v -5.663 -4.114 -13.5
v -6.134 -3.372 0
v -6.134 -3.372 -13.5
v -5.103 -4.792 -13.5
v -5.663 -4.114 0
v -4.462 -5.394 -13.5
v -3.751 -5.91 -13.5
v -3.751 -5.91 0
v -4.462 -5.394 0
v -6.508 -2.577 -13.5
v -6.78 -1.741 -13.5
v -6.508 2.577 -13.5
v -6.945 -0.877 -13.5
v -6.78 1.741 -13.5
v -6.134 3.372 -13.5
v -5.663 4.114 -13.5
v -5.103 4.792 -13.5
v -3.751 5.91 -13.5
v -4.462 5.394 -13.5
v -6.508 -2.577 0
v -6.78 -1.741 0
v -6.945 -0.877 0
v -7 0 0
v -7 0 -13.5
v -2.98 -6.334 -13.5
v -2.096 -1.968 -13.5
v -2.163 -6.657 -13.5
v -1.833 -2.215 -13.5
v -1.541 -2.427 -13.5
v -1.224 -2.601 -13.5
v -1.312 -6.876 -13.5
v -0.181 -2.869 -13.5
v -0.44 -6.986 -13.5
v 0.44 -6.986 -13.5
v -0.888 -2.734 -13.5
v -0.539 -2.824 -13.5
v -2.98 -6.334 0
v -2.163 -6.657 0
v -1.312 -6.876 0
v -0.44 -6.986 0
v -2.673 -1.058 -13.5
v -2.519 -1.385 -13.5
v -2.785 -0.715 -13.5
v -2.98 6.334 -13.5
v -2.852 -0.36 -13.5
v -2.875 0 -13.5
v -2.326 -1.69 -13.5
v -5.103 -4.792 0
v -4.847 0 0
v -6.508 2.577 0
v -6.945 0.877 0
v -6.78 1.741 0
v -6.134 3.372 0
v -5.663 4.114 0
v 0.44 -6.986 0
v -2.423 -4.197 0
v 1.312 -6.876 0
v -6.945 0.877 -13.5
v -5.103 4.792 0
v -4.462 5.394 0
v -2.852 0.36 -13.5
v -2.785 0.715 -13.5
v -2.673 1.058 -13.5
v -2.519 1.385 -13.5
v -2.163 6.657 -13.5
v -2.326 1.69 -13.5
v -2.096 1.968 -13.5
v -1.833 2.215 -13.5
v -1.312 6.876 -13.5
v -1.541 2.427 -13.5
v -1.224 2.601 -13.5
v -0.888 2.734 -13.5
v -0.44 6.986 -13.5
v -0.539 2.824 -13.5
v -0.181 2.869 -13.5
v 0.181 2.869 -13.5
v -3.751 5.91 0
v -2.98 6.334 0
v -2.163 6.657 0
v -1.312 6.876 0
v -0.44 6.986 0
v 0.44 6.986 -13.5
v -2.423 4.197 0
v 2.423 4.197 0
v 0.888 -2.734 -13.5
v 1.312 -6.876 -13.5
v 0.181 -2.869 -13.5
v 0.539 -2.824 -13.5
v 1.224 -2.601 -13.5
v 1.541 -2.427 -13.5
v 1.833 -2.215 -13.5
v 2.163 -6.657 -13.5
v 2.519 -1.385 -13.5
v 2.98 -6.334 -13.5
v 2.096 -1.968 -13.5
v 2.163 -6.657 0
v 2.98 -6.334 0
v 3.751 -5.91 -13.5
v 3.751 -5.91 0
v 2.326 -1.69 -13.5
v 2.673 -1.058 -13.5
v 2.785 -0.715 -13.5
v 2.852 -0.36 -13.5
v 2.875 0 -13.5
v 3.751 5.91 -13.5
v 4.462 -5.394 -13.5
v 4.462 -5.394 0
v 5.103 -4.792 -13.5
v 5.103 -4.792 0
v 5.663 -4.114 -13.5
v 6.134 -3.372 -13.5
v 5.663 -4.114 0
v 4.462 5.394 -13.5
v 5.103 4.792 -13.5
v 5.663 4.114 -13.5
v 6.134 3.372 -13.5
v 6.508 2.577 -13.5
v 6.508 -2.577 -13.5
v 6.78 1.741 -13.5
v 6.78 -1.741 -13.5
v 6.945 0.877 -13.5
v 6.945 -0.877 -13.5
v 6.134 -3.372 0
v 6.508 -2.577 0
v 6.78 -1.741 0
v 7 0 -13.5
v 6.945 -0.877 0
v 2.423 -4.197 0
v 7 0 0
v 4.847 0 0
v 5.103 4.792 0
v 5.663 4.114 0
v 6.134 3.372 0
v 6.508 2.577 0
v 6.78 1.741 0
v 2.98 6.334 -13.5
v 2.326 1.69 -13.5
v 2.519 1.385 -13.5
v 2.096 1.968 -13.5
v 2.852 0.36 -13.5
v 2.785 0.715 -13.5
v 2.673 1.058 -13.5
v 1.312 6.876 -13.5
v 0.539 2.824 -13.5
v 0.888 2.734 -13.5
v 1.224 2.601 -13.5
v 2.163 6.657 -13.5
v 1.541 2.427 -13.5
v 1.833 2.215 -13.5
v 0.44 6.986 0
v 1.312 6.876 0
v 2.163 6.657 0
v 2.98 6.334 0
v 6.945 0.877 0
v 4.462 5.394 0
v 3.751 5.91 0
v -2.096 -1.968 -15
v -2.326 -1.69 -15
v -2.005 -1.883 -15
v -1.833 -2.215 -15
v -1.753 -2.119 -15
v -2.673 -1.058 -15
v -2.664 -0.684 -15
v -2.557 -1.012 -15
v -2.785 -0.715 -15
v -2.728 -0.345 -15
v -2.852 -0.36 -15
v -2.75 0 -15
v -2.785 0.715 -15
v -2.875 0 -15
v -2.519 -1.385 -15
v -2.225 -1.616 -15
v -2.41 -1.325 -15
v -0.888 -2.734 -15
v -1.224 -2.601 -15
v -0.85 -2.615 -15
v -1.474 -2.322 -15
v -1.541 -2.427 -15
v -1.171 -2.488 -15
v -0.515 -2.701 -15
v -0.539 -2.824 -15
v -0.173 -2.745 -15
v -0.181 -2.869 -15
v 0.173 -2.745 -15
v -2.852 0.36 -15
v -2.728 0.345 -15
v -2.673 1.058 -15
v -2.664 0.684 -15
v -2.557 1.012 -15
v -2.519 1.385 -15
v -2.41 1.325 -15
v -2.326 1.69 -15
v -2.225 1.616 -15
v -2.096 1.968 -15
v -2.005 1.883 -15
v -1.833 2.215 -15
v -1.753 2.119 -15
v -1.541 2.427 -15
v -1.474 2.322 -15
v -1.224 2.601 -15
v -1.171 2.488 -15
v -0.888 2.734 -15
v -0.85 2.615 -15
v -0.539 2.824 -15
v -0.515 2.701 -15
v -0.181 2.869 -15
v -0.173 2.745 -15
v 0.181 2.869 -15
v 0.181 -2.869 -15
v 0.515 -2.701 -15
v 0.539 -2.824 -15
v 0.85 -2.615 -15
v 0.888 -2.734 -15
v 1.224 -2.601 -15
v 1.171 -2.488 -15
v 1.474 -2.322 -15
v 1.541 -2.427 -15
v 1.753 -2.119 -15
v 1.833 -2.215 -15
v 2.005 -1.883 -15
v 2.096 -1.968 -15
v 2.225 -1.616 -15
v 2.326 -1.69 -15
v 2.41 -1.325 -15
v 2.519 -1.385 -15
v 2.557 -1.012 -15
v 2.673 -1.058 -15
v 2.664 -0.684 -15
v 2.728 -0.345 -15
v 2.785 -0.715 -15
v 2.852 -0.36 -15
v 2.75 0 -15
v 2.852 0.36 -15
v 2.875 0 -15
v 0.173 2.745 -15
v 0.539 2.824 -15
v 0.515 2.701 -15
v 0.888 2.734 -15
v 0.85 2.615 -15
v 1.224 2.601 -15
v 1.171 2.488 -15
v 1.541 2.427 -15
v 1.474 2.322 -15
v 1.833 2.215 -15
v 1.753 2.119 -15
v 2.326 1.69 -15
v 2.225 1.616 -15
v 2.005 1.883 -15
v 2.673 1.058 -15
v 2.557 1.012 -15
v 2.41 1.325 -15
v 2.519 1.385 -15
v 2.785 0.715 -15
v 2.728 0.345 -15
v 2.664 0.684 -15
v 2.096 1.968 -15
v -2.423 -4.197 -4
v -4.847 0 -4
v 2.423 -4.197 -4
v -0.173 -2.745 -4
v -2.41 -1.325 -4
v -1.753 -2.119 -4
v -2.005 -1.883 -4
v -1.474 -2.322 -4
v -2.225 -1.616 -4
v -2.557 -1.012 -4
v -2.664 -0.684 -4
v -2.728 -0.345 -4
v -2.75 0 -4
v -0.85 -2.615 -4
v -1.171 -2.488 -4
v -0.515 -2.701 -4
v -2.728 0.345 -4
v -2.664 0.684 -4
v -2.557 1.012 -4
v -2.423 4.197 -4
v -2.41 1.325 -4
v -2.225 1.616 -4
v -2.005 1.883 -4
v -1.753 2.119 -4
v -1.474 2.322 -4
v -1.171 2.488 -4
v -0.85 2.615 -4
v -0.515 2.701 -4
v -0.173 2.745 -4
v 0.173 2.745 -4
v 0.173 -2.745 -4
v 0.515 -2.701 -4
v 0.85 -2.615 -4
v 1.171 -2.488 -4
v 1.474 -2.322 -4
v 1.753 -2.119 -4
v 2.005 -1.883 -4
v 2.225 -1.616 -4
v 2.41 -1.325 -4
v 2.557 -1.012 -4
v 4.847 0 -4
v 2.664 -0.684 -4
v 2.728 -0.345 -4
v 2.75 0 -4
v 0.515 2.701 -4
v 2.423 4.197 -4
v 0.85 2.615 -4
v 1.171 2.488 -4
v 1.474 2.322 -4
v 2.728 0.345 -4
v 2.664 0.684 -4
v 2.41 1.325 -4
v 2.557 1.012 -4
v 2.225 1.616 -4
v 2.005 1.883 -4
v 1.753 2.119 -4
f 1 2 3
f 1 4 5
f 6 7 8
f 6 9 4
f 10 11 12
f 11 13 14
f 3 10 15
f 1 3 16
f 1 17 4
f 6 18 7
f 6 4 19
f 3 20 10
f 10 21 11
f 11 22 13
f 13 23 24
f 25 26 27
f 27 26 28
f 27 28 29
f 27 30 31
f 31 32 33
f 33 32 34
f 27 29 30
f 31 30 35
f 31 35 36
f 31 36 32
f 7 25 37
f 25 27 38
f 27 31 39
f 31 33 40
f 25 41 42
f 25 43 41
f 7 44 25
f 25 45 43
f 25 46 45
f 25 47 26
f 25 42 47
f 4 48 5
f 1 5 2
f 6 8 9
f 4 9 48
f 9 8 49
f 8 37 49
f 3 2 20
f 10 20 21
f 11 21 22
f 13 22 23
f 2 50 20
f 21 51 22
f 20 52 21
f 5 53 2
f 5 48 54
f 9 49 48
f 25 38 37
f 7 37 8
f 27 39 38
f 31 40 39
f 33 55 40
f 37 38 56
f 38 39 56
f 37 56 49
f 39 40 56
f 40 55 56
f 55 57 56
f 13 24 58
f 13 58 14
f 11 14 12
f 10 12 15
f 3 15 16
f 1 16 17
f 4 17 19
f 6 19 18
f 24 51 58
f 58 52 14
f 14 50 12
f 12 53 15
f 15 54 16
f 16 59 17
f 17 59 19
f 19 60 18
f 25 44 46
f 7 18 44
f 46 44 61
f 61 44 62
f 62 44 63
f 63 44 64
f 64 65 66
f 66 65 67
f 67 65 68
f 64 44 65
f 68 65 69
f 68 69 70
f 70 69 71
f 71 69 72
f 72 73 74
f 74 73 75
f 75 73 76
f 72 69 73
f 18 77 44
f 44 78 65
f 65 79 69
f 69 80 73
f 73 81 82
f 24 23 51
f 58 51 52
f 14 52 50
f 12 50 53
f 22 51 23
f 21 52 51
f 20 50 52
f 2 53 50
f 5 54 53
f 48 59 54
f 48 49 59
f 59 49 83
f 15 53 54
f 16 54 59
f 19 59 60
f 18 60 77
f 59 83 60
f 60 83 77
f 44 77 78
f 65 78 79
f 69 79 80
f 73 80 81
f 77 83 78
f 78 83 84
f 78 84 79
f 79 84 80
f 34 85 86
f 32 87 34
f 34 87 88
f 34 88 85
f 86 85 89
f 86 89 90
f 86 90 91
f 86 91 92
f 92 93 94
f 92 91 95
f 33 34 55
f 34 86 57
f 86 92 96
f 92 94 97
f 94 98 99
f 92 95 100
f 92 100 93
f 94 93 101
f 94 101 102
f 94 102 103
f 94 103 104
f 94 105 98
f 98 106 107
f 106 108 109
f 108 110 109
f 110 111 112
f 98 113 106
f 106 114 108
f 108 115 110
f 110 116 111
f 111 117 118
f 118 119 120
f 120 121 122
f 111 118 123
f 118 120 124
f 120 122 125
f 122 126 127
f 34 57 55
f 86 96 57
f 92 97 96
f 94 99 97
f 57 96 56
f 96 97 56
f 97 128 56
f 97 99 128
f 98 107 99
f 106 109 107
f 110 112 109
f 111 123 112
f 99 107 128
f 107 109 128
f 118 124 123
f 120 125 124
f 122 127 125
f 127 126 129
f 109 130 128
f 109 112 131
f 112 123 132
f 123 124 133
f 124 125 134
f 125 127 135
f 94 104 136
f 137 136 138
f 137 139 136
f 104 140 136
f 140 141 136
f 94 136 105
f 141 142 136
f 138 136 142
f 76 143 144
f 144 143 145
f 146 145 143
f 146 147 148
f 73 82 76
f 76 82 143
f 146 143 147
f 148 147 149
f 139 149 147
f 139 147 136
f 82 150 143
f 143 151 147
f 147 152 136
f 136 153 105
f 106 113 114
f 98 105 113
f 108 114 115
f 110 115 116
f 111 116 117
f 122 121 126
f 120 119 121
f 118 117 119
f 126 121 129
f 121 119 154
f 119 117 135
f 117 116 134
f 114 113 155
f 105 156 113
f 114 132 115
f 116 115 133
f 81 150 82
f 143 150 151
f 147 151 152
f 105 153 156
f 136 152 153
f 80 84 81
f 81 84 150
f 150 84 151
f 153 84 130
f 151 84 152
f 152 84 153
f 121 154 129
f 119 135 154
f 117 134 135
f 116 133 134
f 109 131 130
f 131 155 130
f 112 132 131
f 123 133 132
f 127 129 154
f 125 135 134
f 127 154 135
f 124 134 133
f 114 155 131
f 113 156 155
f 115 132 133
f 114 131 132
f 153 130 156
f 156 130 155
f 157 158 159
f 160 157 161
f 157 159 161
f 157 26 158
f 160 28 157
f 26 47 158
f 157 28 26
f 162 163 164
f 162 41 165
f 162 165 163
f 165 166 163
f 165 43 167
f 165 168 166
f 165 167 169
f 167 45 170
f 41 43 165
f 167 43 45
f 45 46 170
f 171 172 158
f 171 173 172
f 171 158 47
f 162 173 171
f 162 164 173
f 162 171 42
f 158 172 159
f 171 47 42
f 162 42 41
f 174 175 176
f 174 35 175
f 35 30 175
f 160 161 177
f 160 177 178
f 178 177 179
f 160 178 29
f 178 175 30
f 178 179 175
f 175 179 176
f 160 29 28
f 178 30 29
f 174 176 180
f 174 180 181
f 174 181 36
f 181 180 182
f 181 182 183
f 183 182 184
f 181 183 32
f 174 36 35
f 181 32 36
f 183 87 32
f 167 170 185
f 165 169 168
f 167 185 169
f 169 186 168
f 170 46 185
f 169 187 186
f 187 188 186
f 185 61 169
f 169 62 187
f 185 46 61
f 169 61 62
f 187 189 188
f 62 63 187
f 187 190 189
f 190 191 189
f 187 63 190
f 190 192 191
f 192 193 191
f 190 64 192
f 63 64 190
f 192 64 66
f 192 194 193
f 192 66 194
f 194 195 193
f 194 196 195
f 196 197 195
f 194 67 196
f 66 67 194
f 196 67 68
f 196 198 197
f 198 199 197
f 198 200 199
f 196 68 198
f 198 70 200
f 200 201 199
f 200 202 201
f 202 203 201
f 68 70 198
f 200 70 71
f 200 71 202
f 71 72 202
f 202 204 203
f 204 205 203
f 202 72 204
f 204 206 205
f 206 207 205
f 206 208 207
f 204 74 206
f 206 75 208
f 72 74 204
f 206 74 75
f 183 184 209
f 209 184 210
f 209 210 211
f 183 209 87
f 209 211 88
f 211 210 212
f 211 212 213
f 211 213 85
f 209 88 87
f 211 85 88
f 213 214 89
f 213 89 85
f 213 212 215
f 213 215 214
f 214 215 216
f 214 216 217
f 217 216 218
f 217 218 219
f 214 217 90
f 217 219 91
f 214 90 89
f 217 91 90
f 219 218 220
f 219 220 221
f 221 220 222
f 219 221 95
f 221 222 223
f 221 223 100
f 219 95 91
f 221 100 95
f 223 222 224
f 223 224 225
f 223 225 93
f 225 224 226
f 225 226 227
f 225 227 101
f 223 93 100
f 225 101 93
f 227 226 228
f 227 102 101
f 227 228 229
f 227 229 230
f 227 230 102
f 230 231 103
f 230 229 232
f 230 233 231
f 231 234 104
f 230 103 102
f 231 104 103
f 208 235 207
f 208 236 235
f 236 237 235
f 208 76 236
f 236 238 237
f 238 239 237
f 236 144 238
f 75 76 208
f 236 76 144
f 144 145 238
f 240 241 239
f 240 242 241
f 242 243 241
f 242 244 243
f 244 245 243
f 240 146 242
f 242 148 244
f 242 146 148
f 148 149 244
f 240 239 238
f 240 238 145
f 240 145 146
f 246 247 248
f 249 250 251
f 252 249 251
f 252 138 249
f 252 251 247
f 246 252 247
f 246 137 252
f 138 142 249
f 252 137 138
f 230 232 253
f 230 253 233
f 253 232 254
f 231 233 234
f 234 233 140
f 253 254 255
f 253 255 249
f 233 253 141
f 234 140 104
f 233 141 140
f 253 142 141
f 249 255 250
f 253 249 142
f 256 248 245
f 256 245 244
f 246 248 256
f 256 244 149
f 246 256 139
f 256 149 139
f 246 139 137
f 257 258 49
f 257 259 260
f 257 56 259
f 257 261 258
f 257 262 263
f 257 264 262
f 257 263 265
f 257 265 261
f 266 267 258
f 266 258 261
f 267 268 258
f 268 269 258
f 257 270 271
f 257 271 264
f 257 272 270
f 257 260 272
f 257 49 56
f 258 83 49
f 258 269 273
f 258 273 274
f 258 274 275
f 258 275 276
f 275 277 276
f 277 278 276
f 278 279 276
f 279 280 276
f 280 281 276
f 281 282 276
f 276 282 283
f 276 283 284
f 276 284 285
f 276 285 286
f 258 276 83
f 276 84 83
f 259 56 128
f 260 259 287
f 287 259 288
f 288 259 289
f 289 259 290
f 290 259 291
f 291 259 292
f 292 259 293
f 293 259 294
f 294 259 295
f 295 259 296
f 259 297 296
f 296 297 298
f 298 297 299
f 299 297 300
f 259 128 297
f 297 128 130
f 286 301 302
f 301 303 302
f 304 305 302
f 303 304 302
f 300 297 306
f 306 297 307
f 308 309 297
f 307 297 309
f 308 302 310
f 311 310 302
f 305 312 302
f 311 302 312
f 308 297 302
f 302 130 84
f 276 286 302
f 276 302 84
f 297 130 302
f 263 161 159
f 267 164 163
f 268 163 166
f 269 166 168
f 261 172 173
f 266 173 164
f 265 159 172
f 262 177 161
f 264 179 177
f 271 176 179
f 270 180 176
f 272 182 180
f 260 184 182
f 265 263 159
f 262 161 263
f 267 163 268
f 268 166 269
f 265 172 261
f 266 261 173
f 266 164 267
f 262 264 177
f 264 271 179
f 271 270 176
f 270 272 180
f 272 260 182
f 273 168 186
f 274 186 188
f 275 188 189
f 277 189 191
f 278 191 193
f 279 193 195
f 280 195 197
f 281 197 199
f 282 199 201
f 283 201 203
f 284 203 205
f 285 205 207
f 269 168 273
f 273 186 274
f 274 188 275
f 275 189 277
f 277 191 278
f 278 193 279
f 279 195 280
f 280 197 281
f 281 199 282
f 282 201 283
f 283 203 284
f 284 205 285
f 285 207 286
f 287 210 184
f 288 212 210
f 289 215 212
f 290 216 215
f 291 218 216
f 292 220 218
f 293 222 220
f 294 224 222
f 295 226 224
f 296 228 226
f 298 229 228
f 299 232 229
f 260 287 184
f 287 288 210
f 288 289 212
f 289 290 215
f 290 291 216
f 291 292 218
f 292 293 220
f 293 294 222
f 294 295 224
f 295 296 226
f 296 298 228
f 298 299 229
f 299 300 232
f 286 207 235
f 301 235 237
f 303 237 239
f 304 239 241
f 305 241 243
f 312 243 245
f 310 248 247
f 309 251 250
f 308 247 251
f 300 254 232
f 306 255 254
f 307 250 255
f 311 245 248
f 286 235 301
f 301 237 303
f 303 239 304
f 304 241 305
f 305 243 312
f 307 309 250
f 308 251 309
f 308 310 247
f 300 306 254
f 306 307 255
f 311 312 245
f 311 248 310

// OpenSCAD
$fn = 50;

difference() {
	union() {
		translate(v = [0, 0, -13.5]) {
			cylinder(h = 13.5, r = 7.0);
		}
		#translate(v = [0, 0, -15.0]) {
			cylinder(h = 15, r = 2.875);
		}
	}
	union() {
		translate(v = [0, 0, 0]) {
			rotate(a = [0, 0, 0]) {
				difference() {
					union() {
						translate(v = [0, 0, -4]) {
							linear_extrude(height = 4) {
								polygon(points = [[4.8468, 0.0], [2.4234000000000004, 4.197451927062417], [-2.423399999999999, 4.197451927062417], [-4.8468, 5.935618106107392e-16], [-2.423400000000002, -4.197451927062416], [2.423399999999997, -4.197451927062419]]);
							}
						}
					}
					union();
				}
			}
		}
		#translate(v = [0, 0, -100.0]) {
			cylinder(h = 200, r = 2.75);
		}
	}
}
